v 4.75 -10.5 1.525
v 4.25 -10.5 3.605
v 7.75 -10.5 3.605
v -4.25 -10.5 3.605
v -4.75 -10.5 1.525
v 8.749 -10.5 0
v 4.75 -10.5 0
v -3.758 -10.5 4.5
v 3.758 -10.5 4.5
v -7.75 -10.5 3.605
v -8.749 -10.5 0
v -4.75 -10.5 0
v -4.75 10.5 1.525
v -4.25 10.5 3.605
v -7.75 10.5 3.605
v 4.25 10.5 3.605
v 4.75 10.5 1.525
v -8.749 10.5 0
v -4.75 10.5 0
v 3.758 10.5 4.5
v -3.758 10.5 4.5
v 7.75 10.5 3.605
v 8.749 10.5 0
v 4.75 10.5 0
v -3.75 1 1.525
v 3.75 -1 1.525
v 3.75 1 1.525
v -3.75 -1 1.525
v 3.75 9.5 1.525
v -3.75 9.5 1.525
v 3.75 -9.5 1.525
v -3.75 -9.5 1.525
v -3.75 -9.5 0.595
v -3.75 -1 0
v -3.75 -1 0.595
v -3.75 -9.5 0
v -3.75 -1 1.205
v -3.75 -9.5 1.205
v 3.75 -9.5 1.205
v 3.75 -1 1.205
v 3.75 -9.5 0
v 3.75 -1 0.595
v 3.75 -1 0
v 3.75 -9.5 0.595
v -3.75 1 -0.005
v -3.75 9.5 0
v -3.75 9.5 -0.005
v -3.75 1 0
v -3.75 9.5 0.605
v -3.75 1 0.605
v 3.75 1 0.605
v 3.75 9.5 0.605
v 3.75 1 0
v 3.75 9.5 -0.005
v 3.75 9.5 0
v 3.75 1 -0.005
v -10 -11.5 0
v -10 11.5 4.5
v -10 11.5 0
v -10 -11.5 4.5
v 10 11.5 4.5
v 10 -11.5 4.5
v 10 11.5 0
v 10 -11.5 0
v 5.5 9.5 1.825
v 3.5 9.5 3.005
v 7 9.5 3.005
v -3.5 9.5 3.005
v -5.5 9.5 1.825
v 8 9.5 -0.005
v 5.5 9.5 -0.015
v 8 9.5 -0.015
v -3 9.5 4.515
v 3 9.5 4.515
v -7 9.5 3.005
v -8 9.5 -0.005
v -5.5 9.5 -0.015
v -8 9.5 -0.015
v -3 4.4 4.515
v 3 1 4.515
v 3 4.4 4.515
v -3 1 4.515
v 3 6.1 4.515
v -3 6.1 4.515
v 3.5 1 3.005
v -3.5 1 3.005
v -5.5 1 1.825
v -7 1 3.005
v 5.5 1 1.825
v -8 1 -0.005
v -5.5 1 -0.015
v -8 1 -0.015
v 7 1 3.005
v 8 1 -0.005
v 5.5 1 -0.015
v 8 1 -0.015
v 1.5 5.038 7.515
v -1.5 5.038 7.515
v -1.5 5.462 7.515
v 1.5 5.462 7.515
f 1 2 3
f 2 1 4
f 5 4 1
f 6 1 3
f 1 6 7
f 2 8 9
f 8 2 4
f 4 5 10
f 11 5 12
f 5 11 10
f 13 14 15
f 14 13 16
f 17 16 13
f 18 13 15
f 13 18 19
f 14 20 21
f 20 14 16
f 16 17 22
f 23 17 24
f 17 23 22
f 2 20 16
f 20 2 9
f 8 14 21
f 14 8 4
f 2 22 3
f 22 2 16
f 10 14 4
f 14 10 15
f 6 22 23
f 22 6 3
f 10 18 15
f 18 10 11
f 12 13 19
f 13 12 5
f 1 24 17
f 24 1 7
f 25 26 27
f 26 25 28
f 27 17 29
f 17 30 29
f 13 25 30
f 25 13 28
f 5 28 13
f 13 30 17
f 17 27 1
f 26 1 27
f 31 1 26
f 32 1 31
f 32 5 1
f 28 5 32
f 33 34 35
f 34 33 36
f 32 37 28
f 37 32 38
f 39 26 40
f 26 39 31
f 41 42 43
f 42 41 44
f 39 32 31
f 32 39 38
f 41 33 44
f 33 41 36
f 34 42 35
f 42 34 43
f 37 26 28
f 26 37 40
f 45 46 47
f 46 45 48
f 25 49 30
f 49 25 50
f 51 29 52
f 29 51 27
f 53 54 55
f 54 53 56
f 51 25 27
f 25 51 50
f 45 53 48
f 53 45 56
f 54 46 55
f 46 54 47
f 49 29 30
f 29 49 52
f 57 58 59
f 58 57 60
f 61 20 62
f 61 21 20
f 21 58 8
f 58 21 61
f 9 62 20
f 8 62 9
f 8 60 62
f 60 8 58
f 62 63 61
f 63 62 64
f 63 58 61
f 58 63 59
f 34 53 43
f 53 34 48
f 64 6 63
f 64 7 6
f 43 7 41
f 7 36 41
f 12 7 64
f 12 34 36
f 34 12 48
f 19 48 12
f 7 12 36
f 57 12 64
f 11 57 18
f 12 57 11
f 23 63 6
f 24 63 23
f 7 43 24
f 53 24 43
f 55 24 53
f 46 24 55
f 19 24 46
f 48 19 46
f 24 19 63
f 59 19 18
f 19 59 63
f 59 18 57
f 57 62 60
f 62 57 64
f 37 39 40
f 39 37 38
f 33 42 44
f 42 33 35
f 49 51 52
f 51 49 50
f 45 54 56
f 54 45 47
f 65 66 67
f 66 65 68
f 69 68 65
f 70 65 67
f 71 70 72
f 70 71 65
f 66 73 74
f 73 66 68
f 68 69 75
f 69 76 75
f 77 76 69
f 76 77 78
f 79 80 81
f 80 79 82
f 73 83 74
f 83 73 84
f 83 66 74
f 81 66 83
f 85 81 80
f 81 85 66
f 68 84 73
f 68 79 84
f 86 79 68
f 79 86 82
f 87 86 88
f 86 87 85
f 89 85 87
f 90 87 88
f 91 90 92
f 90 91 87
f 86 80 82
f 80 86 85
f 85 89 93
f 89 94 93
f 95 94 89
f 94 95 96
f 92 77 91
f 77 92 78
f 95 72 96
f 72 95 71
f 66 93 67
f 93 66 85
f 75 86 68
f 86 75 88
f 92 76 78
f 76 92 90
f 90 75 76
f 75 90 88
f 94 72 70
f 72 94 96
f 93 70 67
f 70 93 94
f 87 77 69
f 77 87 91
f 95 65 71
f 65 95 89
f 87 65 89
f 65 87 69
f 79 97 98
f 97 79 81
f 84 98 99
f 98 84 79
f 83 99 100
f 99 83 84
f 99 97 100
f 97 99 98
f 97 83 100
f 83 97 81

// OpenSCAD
$fn = 20;

layerHeight = 0.30; // Typical for 0.4 to 0.6mm nozzle

baseThickness = layerHeight*15;
baseWidth = 23;
baseHeight = 20;

sliderRail = 10;
sliderWidthThickness = 1.5;
sliderHeightThickness = 2;

sliderWidth = baseWidth-sliderWidthThickness*2;
sliderHeight = baseHeight-sliderHeightThickness*2;

echo(baseThickness);

MODE_CONE_SLIDER = false;
MODE_SWITCH_SLIDER = true;

MODE_ADD_WINDOW = true;

module sliderBulk(heightTop, heightBottom, width, sliderRailW, sliderRailH=0, offsetX=0, offsetY=0, offsetZ=0, cutMode=false)
{
    difference()
    {
        // Slider Rails
        union()
        {
            hull()
            {
                translate([0, 0, baseThickness+0.01])
                    cube([heightTop-sliderRailW+offsetX, width+offsetY, 0.01], center = true);
                translate([0, 0, layerHeight*10+offsetZ])
                    cube([heightTop-sliderRailW+offsetX+1, width+offsetY, 0.01], center = true);
            }
            hull()
            {
                translate([0, 0, layerHeight*10+offsetZ])
                    cube([heightBottom+offsetX-2, width+offsetY, 0.01], center = true);
                translate([0, 0, -0.01])
                    cube([heightBottom+offsetX, width+offsetY, 0.01], center = true);
            }
        }
        // Slide flange to make it easier to slide over the tab
        if (0) //< Feature disabled for now due to potential tolerance issues. Also not sure if actually needed
        if (cutMode)
        {
            translate([(heightBottom-sliderRailW/2-offsetX)/2 -1/2, 0, 0])
                cylinder(r1=1.0, r2=0, h=sliderRailH);
            translate([-(heightBottom-sliderRailW/2-offsetX)/2 +1/2, 0, 0])
                cylinder(r1=1, r2=0, h=sliderRailH);
        }
        // Slider Bottom Rail
        hull()
        {
            translate([0, 0, sliderRailH+0.02])
                cube([heightBottom-sliderRailW/2-offsetX, width+offsetY+0.01, 0.01], center = true);
            translate([0, 0, -0.02])
                cube([heightBottom-sliderRailW/2-offsetX, width+offsetY+0.01, 0.01], center = true);
        }
    }

    // Slider Handle
    if (MODE_CONE_SLIDER)
    {
        translate([0, 0, baseThickness])
            color("grey")
            cylinder(r1=(heightTop-sliderRailW)/2, r2=(heightTop-sliderRailW)/2+2, h=layerHeight*10+0.01);
    }
    if (MODE_SWITCH_SLIDER)
    {            
        color("grey")
        hull()
        {
            translate([0, 0, baseThickness+0.01])
                cube([(heightTop-sliderRailW), width*0.2, 0.01], center = true);
            translate([0, 0, baseThickness+layerHeight*10+0.01])
                cube([(heightTop-sliderRailW)/2, width*0.05, 0.01], center = true);
        }
    }
}

if (1)
{ // Base
    xTol = 1.5;
    yTol = 1.0;
    windowWidth = sliderWidth/2-1.5;
    windowHeight = sliderHeight-sliderRail/2-xTol-2;
    difference()
    {
        translate([0,0,baseThickness/2])
            cube([baseHeight,baseWidth,baseThickness], center = true);
        sliderBulk(
            heightTop=sliderHeight,
            heightBottom=sliderHeight,
            width=sliderWidth,
            sliderRailW=sliderRail,
            sliderRailH=layerHeight*5,
            offsetX=xTol,
            offsetY=yTol,
            offsetZ=layerHeight*2,
            cutMode=true);
        
        if (MODE_ADD_WINDOW)
        {
            translate([0, -(baseWidth/2-windowWidth/2-sliderWidthThickness-0.5), layerHeight*3])
                cube([windowHeight, windowWidth, layerHeight*4*2], center = true);
            translate([0, +(baseWidth/2-windowWidth/2-sliderWidthThickness-0.5), layerHeight*3])
                cube([windowHeight, windowWidth, layerHeight*4*2], center = true);
        }
    }

    // Add Color Windows
    if (MODE_ADD_WINDOW)
    {
        color("red")
            translate([0, -(baseWidth/2-windowWidth/2-sliderWidthThickness-0.5), layerHeight*2/2+layerHeight*2])
            cube([windowHeight, windowWidth, layerHeight*2+0.01], center = true);
        color("green")
            translate([0, +(baseWidth/2-windowWidth/2-sliderWidthThickness-0.5), layerHeight*1])
            cube([windowHeight, windowWidth, layerHeight*2+0.01], center = true);
    }
}

if (1)
{ // Slider
    flangeCompensate = 0.5;
    translate([0,sliderWidth/4+flangeCompensate/2,0])
        sliderBulk(
            heightTop=sliderHeight, 
            heightBottom=sliderHeight, 
            width=sliderWidth/2-1-flangeCompensate,
            sliderRailW=sliderRail,
            sliderRailH=layerHeight*5+layerHeight*1);
}
